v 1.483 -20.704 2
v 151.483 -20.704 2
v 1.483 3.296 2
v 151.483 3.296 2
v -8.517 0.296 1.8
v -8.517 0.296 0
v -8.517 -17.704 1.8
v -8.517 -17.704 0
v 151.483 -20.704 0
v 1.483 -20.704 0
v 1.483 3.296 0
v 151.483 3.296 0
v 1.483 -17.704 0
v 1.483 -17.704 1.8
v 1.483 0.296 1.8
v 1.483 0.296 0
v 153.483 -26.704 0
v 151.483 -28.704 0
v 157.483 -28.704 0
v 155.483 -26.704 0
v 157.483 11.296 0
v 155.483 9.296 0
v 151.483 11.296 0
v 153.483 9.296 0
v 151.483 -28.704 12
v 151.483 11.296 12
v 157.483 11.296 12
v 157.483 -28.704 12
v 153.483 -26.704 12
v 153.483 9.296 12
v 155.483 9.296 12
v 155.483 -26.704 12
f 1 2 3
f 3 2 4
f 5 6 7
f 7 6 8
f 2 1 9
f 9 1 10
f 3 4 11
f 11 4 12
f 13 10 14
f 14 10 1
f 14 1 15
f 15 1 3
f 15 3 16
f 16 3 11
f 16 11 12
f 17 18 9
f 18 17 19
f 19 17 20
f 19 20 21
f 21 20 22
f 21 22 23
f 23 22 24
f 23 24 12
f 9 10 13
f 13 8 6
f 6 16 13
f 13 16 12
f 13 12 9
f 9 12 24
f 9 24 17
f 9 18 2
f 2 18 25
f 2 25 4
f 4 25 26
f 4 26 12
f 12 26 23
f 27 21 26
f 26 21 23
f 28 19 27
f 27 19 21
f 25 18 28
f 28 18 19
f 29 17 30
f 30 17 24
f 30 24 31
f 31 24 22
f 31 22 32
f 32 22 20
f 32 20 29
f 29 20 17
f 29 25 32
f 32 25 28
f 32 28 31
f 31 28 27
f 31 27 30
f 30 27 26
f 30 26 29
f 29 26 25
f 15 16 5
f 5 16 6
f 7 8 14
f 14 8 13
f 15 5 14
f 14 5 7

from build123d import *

# Parameters (mm, degrees)
SALIENTE_EXTRUIR1_DEPTH = 2
CROQUIS2_W              = 2
CROQUIS2_H              = 36
SALIENTE_EXTRUIR2_DEPTH = 2
CROQUIS2_2_W            = 2
CROQUIS2_2_H            = 36
SALIENTE_EXTRUIR3_DEPTH = 10
CROQUIS3_W              = 10
CROQUIS3_H              = 1
CORTAR_EXTRUIR1_DEPTH   = 2
CROQUIS4_W              = 10
CROQUIS4_H              = 0.2
CORTAR_EXTRUIR2_DEPTH   = 18


with BuildPart() as part:
    # Croquis1 → Saliente-Extruir1 (new body)
    with BuildSketch(Plane.XY):
        Polygon((-8.516541248, 1.295896328), (1.483458752, 1.295896328), (1.483458752, 3.295896328), (151.483458752, 3.295896328), (151.483458752, -20.704103672), (1.483458752, -20.704103672), (1.483458752, -18.704103672), (-8.516541248, -18.704103672), align=None)
    extrude(amount=SALIENTE_EXTRUIR1_DEPTH)

    # Croquis2 → Saliente-Extruir2 (add)
    with BuildSketch(Plane.XY.offset(2)):
        Polygon((151.483458752, 3.295896328), (151.483458752, 11.295896328), (157.483458752, 11.295896328), (157.483458752, -28.704103672), (151.483458752, -28.704103672), align=None)
        with Locations((154.483458752, -8.704103672)):
            Rectangle(CROQUIS2_W, CROQUIS2_H, mode=Mode.SUBTRACT)
    extrude(amount=-SALIENTE_EXTRUIR2_DEPTH)

    # Croquis2<2> → Saliente-Extruir3 (add)
    with BuildSketch(Plane.XY.offset(2)):
        Polygon((151.483458752, 3.295896328), (151.483458752, 11.295896328), (157.483458752, 11.295896328), (157.483458752, -28.704103672), (151.483458752, -28.704103672), align=None)
        with Locations((154.483458752, -8.704103672)):
            Rectangle(CROQUIS2_2_W, CROQUIS2_2_H, mode=Mode.SUBTRACT)
    extrude(amount=SALIENTE_EXTRUIR3_DEPTH)

    # Croquis3 → Cortar-Extruir1 (cut)
    with BuildSketch(Plane.XY.offset(2)):
        with Locations((-3.516541248, 0.795896328)):
            Rectangle(CROQUIS3_W, CROQUIS3_H)
        with Locations((-3.516541248, -18.204103672)):
            Rectangle(CROQUIS3_W, CROQUIS3_H)
    extrude(amount=-CORTAR_EXTRUIR1_DEPTH, mode=Mode.SUBTRACT)

    # Croquis4 → Cortar-Extruir2 (cut)
    with BuildSketch(Plane.XZ.offset(17.704103672)):
        with Locations((-3.516541248, 1.9)):
            Rectangle(CROQUIS4_W, CROQUIS4_H)
    extrude(amount=-CORTAR_EXTRUIR2_DEPTH, mode=Mode.SUBTRACT)


solid = part.part
